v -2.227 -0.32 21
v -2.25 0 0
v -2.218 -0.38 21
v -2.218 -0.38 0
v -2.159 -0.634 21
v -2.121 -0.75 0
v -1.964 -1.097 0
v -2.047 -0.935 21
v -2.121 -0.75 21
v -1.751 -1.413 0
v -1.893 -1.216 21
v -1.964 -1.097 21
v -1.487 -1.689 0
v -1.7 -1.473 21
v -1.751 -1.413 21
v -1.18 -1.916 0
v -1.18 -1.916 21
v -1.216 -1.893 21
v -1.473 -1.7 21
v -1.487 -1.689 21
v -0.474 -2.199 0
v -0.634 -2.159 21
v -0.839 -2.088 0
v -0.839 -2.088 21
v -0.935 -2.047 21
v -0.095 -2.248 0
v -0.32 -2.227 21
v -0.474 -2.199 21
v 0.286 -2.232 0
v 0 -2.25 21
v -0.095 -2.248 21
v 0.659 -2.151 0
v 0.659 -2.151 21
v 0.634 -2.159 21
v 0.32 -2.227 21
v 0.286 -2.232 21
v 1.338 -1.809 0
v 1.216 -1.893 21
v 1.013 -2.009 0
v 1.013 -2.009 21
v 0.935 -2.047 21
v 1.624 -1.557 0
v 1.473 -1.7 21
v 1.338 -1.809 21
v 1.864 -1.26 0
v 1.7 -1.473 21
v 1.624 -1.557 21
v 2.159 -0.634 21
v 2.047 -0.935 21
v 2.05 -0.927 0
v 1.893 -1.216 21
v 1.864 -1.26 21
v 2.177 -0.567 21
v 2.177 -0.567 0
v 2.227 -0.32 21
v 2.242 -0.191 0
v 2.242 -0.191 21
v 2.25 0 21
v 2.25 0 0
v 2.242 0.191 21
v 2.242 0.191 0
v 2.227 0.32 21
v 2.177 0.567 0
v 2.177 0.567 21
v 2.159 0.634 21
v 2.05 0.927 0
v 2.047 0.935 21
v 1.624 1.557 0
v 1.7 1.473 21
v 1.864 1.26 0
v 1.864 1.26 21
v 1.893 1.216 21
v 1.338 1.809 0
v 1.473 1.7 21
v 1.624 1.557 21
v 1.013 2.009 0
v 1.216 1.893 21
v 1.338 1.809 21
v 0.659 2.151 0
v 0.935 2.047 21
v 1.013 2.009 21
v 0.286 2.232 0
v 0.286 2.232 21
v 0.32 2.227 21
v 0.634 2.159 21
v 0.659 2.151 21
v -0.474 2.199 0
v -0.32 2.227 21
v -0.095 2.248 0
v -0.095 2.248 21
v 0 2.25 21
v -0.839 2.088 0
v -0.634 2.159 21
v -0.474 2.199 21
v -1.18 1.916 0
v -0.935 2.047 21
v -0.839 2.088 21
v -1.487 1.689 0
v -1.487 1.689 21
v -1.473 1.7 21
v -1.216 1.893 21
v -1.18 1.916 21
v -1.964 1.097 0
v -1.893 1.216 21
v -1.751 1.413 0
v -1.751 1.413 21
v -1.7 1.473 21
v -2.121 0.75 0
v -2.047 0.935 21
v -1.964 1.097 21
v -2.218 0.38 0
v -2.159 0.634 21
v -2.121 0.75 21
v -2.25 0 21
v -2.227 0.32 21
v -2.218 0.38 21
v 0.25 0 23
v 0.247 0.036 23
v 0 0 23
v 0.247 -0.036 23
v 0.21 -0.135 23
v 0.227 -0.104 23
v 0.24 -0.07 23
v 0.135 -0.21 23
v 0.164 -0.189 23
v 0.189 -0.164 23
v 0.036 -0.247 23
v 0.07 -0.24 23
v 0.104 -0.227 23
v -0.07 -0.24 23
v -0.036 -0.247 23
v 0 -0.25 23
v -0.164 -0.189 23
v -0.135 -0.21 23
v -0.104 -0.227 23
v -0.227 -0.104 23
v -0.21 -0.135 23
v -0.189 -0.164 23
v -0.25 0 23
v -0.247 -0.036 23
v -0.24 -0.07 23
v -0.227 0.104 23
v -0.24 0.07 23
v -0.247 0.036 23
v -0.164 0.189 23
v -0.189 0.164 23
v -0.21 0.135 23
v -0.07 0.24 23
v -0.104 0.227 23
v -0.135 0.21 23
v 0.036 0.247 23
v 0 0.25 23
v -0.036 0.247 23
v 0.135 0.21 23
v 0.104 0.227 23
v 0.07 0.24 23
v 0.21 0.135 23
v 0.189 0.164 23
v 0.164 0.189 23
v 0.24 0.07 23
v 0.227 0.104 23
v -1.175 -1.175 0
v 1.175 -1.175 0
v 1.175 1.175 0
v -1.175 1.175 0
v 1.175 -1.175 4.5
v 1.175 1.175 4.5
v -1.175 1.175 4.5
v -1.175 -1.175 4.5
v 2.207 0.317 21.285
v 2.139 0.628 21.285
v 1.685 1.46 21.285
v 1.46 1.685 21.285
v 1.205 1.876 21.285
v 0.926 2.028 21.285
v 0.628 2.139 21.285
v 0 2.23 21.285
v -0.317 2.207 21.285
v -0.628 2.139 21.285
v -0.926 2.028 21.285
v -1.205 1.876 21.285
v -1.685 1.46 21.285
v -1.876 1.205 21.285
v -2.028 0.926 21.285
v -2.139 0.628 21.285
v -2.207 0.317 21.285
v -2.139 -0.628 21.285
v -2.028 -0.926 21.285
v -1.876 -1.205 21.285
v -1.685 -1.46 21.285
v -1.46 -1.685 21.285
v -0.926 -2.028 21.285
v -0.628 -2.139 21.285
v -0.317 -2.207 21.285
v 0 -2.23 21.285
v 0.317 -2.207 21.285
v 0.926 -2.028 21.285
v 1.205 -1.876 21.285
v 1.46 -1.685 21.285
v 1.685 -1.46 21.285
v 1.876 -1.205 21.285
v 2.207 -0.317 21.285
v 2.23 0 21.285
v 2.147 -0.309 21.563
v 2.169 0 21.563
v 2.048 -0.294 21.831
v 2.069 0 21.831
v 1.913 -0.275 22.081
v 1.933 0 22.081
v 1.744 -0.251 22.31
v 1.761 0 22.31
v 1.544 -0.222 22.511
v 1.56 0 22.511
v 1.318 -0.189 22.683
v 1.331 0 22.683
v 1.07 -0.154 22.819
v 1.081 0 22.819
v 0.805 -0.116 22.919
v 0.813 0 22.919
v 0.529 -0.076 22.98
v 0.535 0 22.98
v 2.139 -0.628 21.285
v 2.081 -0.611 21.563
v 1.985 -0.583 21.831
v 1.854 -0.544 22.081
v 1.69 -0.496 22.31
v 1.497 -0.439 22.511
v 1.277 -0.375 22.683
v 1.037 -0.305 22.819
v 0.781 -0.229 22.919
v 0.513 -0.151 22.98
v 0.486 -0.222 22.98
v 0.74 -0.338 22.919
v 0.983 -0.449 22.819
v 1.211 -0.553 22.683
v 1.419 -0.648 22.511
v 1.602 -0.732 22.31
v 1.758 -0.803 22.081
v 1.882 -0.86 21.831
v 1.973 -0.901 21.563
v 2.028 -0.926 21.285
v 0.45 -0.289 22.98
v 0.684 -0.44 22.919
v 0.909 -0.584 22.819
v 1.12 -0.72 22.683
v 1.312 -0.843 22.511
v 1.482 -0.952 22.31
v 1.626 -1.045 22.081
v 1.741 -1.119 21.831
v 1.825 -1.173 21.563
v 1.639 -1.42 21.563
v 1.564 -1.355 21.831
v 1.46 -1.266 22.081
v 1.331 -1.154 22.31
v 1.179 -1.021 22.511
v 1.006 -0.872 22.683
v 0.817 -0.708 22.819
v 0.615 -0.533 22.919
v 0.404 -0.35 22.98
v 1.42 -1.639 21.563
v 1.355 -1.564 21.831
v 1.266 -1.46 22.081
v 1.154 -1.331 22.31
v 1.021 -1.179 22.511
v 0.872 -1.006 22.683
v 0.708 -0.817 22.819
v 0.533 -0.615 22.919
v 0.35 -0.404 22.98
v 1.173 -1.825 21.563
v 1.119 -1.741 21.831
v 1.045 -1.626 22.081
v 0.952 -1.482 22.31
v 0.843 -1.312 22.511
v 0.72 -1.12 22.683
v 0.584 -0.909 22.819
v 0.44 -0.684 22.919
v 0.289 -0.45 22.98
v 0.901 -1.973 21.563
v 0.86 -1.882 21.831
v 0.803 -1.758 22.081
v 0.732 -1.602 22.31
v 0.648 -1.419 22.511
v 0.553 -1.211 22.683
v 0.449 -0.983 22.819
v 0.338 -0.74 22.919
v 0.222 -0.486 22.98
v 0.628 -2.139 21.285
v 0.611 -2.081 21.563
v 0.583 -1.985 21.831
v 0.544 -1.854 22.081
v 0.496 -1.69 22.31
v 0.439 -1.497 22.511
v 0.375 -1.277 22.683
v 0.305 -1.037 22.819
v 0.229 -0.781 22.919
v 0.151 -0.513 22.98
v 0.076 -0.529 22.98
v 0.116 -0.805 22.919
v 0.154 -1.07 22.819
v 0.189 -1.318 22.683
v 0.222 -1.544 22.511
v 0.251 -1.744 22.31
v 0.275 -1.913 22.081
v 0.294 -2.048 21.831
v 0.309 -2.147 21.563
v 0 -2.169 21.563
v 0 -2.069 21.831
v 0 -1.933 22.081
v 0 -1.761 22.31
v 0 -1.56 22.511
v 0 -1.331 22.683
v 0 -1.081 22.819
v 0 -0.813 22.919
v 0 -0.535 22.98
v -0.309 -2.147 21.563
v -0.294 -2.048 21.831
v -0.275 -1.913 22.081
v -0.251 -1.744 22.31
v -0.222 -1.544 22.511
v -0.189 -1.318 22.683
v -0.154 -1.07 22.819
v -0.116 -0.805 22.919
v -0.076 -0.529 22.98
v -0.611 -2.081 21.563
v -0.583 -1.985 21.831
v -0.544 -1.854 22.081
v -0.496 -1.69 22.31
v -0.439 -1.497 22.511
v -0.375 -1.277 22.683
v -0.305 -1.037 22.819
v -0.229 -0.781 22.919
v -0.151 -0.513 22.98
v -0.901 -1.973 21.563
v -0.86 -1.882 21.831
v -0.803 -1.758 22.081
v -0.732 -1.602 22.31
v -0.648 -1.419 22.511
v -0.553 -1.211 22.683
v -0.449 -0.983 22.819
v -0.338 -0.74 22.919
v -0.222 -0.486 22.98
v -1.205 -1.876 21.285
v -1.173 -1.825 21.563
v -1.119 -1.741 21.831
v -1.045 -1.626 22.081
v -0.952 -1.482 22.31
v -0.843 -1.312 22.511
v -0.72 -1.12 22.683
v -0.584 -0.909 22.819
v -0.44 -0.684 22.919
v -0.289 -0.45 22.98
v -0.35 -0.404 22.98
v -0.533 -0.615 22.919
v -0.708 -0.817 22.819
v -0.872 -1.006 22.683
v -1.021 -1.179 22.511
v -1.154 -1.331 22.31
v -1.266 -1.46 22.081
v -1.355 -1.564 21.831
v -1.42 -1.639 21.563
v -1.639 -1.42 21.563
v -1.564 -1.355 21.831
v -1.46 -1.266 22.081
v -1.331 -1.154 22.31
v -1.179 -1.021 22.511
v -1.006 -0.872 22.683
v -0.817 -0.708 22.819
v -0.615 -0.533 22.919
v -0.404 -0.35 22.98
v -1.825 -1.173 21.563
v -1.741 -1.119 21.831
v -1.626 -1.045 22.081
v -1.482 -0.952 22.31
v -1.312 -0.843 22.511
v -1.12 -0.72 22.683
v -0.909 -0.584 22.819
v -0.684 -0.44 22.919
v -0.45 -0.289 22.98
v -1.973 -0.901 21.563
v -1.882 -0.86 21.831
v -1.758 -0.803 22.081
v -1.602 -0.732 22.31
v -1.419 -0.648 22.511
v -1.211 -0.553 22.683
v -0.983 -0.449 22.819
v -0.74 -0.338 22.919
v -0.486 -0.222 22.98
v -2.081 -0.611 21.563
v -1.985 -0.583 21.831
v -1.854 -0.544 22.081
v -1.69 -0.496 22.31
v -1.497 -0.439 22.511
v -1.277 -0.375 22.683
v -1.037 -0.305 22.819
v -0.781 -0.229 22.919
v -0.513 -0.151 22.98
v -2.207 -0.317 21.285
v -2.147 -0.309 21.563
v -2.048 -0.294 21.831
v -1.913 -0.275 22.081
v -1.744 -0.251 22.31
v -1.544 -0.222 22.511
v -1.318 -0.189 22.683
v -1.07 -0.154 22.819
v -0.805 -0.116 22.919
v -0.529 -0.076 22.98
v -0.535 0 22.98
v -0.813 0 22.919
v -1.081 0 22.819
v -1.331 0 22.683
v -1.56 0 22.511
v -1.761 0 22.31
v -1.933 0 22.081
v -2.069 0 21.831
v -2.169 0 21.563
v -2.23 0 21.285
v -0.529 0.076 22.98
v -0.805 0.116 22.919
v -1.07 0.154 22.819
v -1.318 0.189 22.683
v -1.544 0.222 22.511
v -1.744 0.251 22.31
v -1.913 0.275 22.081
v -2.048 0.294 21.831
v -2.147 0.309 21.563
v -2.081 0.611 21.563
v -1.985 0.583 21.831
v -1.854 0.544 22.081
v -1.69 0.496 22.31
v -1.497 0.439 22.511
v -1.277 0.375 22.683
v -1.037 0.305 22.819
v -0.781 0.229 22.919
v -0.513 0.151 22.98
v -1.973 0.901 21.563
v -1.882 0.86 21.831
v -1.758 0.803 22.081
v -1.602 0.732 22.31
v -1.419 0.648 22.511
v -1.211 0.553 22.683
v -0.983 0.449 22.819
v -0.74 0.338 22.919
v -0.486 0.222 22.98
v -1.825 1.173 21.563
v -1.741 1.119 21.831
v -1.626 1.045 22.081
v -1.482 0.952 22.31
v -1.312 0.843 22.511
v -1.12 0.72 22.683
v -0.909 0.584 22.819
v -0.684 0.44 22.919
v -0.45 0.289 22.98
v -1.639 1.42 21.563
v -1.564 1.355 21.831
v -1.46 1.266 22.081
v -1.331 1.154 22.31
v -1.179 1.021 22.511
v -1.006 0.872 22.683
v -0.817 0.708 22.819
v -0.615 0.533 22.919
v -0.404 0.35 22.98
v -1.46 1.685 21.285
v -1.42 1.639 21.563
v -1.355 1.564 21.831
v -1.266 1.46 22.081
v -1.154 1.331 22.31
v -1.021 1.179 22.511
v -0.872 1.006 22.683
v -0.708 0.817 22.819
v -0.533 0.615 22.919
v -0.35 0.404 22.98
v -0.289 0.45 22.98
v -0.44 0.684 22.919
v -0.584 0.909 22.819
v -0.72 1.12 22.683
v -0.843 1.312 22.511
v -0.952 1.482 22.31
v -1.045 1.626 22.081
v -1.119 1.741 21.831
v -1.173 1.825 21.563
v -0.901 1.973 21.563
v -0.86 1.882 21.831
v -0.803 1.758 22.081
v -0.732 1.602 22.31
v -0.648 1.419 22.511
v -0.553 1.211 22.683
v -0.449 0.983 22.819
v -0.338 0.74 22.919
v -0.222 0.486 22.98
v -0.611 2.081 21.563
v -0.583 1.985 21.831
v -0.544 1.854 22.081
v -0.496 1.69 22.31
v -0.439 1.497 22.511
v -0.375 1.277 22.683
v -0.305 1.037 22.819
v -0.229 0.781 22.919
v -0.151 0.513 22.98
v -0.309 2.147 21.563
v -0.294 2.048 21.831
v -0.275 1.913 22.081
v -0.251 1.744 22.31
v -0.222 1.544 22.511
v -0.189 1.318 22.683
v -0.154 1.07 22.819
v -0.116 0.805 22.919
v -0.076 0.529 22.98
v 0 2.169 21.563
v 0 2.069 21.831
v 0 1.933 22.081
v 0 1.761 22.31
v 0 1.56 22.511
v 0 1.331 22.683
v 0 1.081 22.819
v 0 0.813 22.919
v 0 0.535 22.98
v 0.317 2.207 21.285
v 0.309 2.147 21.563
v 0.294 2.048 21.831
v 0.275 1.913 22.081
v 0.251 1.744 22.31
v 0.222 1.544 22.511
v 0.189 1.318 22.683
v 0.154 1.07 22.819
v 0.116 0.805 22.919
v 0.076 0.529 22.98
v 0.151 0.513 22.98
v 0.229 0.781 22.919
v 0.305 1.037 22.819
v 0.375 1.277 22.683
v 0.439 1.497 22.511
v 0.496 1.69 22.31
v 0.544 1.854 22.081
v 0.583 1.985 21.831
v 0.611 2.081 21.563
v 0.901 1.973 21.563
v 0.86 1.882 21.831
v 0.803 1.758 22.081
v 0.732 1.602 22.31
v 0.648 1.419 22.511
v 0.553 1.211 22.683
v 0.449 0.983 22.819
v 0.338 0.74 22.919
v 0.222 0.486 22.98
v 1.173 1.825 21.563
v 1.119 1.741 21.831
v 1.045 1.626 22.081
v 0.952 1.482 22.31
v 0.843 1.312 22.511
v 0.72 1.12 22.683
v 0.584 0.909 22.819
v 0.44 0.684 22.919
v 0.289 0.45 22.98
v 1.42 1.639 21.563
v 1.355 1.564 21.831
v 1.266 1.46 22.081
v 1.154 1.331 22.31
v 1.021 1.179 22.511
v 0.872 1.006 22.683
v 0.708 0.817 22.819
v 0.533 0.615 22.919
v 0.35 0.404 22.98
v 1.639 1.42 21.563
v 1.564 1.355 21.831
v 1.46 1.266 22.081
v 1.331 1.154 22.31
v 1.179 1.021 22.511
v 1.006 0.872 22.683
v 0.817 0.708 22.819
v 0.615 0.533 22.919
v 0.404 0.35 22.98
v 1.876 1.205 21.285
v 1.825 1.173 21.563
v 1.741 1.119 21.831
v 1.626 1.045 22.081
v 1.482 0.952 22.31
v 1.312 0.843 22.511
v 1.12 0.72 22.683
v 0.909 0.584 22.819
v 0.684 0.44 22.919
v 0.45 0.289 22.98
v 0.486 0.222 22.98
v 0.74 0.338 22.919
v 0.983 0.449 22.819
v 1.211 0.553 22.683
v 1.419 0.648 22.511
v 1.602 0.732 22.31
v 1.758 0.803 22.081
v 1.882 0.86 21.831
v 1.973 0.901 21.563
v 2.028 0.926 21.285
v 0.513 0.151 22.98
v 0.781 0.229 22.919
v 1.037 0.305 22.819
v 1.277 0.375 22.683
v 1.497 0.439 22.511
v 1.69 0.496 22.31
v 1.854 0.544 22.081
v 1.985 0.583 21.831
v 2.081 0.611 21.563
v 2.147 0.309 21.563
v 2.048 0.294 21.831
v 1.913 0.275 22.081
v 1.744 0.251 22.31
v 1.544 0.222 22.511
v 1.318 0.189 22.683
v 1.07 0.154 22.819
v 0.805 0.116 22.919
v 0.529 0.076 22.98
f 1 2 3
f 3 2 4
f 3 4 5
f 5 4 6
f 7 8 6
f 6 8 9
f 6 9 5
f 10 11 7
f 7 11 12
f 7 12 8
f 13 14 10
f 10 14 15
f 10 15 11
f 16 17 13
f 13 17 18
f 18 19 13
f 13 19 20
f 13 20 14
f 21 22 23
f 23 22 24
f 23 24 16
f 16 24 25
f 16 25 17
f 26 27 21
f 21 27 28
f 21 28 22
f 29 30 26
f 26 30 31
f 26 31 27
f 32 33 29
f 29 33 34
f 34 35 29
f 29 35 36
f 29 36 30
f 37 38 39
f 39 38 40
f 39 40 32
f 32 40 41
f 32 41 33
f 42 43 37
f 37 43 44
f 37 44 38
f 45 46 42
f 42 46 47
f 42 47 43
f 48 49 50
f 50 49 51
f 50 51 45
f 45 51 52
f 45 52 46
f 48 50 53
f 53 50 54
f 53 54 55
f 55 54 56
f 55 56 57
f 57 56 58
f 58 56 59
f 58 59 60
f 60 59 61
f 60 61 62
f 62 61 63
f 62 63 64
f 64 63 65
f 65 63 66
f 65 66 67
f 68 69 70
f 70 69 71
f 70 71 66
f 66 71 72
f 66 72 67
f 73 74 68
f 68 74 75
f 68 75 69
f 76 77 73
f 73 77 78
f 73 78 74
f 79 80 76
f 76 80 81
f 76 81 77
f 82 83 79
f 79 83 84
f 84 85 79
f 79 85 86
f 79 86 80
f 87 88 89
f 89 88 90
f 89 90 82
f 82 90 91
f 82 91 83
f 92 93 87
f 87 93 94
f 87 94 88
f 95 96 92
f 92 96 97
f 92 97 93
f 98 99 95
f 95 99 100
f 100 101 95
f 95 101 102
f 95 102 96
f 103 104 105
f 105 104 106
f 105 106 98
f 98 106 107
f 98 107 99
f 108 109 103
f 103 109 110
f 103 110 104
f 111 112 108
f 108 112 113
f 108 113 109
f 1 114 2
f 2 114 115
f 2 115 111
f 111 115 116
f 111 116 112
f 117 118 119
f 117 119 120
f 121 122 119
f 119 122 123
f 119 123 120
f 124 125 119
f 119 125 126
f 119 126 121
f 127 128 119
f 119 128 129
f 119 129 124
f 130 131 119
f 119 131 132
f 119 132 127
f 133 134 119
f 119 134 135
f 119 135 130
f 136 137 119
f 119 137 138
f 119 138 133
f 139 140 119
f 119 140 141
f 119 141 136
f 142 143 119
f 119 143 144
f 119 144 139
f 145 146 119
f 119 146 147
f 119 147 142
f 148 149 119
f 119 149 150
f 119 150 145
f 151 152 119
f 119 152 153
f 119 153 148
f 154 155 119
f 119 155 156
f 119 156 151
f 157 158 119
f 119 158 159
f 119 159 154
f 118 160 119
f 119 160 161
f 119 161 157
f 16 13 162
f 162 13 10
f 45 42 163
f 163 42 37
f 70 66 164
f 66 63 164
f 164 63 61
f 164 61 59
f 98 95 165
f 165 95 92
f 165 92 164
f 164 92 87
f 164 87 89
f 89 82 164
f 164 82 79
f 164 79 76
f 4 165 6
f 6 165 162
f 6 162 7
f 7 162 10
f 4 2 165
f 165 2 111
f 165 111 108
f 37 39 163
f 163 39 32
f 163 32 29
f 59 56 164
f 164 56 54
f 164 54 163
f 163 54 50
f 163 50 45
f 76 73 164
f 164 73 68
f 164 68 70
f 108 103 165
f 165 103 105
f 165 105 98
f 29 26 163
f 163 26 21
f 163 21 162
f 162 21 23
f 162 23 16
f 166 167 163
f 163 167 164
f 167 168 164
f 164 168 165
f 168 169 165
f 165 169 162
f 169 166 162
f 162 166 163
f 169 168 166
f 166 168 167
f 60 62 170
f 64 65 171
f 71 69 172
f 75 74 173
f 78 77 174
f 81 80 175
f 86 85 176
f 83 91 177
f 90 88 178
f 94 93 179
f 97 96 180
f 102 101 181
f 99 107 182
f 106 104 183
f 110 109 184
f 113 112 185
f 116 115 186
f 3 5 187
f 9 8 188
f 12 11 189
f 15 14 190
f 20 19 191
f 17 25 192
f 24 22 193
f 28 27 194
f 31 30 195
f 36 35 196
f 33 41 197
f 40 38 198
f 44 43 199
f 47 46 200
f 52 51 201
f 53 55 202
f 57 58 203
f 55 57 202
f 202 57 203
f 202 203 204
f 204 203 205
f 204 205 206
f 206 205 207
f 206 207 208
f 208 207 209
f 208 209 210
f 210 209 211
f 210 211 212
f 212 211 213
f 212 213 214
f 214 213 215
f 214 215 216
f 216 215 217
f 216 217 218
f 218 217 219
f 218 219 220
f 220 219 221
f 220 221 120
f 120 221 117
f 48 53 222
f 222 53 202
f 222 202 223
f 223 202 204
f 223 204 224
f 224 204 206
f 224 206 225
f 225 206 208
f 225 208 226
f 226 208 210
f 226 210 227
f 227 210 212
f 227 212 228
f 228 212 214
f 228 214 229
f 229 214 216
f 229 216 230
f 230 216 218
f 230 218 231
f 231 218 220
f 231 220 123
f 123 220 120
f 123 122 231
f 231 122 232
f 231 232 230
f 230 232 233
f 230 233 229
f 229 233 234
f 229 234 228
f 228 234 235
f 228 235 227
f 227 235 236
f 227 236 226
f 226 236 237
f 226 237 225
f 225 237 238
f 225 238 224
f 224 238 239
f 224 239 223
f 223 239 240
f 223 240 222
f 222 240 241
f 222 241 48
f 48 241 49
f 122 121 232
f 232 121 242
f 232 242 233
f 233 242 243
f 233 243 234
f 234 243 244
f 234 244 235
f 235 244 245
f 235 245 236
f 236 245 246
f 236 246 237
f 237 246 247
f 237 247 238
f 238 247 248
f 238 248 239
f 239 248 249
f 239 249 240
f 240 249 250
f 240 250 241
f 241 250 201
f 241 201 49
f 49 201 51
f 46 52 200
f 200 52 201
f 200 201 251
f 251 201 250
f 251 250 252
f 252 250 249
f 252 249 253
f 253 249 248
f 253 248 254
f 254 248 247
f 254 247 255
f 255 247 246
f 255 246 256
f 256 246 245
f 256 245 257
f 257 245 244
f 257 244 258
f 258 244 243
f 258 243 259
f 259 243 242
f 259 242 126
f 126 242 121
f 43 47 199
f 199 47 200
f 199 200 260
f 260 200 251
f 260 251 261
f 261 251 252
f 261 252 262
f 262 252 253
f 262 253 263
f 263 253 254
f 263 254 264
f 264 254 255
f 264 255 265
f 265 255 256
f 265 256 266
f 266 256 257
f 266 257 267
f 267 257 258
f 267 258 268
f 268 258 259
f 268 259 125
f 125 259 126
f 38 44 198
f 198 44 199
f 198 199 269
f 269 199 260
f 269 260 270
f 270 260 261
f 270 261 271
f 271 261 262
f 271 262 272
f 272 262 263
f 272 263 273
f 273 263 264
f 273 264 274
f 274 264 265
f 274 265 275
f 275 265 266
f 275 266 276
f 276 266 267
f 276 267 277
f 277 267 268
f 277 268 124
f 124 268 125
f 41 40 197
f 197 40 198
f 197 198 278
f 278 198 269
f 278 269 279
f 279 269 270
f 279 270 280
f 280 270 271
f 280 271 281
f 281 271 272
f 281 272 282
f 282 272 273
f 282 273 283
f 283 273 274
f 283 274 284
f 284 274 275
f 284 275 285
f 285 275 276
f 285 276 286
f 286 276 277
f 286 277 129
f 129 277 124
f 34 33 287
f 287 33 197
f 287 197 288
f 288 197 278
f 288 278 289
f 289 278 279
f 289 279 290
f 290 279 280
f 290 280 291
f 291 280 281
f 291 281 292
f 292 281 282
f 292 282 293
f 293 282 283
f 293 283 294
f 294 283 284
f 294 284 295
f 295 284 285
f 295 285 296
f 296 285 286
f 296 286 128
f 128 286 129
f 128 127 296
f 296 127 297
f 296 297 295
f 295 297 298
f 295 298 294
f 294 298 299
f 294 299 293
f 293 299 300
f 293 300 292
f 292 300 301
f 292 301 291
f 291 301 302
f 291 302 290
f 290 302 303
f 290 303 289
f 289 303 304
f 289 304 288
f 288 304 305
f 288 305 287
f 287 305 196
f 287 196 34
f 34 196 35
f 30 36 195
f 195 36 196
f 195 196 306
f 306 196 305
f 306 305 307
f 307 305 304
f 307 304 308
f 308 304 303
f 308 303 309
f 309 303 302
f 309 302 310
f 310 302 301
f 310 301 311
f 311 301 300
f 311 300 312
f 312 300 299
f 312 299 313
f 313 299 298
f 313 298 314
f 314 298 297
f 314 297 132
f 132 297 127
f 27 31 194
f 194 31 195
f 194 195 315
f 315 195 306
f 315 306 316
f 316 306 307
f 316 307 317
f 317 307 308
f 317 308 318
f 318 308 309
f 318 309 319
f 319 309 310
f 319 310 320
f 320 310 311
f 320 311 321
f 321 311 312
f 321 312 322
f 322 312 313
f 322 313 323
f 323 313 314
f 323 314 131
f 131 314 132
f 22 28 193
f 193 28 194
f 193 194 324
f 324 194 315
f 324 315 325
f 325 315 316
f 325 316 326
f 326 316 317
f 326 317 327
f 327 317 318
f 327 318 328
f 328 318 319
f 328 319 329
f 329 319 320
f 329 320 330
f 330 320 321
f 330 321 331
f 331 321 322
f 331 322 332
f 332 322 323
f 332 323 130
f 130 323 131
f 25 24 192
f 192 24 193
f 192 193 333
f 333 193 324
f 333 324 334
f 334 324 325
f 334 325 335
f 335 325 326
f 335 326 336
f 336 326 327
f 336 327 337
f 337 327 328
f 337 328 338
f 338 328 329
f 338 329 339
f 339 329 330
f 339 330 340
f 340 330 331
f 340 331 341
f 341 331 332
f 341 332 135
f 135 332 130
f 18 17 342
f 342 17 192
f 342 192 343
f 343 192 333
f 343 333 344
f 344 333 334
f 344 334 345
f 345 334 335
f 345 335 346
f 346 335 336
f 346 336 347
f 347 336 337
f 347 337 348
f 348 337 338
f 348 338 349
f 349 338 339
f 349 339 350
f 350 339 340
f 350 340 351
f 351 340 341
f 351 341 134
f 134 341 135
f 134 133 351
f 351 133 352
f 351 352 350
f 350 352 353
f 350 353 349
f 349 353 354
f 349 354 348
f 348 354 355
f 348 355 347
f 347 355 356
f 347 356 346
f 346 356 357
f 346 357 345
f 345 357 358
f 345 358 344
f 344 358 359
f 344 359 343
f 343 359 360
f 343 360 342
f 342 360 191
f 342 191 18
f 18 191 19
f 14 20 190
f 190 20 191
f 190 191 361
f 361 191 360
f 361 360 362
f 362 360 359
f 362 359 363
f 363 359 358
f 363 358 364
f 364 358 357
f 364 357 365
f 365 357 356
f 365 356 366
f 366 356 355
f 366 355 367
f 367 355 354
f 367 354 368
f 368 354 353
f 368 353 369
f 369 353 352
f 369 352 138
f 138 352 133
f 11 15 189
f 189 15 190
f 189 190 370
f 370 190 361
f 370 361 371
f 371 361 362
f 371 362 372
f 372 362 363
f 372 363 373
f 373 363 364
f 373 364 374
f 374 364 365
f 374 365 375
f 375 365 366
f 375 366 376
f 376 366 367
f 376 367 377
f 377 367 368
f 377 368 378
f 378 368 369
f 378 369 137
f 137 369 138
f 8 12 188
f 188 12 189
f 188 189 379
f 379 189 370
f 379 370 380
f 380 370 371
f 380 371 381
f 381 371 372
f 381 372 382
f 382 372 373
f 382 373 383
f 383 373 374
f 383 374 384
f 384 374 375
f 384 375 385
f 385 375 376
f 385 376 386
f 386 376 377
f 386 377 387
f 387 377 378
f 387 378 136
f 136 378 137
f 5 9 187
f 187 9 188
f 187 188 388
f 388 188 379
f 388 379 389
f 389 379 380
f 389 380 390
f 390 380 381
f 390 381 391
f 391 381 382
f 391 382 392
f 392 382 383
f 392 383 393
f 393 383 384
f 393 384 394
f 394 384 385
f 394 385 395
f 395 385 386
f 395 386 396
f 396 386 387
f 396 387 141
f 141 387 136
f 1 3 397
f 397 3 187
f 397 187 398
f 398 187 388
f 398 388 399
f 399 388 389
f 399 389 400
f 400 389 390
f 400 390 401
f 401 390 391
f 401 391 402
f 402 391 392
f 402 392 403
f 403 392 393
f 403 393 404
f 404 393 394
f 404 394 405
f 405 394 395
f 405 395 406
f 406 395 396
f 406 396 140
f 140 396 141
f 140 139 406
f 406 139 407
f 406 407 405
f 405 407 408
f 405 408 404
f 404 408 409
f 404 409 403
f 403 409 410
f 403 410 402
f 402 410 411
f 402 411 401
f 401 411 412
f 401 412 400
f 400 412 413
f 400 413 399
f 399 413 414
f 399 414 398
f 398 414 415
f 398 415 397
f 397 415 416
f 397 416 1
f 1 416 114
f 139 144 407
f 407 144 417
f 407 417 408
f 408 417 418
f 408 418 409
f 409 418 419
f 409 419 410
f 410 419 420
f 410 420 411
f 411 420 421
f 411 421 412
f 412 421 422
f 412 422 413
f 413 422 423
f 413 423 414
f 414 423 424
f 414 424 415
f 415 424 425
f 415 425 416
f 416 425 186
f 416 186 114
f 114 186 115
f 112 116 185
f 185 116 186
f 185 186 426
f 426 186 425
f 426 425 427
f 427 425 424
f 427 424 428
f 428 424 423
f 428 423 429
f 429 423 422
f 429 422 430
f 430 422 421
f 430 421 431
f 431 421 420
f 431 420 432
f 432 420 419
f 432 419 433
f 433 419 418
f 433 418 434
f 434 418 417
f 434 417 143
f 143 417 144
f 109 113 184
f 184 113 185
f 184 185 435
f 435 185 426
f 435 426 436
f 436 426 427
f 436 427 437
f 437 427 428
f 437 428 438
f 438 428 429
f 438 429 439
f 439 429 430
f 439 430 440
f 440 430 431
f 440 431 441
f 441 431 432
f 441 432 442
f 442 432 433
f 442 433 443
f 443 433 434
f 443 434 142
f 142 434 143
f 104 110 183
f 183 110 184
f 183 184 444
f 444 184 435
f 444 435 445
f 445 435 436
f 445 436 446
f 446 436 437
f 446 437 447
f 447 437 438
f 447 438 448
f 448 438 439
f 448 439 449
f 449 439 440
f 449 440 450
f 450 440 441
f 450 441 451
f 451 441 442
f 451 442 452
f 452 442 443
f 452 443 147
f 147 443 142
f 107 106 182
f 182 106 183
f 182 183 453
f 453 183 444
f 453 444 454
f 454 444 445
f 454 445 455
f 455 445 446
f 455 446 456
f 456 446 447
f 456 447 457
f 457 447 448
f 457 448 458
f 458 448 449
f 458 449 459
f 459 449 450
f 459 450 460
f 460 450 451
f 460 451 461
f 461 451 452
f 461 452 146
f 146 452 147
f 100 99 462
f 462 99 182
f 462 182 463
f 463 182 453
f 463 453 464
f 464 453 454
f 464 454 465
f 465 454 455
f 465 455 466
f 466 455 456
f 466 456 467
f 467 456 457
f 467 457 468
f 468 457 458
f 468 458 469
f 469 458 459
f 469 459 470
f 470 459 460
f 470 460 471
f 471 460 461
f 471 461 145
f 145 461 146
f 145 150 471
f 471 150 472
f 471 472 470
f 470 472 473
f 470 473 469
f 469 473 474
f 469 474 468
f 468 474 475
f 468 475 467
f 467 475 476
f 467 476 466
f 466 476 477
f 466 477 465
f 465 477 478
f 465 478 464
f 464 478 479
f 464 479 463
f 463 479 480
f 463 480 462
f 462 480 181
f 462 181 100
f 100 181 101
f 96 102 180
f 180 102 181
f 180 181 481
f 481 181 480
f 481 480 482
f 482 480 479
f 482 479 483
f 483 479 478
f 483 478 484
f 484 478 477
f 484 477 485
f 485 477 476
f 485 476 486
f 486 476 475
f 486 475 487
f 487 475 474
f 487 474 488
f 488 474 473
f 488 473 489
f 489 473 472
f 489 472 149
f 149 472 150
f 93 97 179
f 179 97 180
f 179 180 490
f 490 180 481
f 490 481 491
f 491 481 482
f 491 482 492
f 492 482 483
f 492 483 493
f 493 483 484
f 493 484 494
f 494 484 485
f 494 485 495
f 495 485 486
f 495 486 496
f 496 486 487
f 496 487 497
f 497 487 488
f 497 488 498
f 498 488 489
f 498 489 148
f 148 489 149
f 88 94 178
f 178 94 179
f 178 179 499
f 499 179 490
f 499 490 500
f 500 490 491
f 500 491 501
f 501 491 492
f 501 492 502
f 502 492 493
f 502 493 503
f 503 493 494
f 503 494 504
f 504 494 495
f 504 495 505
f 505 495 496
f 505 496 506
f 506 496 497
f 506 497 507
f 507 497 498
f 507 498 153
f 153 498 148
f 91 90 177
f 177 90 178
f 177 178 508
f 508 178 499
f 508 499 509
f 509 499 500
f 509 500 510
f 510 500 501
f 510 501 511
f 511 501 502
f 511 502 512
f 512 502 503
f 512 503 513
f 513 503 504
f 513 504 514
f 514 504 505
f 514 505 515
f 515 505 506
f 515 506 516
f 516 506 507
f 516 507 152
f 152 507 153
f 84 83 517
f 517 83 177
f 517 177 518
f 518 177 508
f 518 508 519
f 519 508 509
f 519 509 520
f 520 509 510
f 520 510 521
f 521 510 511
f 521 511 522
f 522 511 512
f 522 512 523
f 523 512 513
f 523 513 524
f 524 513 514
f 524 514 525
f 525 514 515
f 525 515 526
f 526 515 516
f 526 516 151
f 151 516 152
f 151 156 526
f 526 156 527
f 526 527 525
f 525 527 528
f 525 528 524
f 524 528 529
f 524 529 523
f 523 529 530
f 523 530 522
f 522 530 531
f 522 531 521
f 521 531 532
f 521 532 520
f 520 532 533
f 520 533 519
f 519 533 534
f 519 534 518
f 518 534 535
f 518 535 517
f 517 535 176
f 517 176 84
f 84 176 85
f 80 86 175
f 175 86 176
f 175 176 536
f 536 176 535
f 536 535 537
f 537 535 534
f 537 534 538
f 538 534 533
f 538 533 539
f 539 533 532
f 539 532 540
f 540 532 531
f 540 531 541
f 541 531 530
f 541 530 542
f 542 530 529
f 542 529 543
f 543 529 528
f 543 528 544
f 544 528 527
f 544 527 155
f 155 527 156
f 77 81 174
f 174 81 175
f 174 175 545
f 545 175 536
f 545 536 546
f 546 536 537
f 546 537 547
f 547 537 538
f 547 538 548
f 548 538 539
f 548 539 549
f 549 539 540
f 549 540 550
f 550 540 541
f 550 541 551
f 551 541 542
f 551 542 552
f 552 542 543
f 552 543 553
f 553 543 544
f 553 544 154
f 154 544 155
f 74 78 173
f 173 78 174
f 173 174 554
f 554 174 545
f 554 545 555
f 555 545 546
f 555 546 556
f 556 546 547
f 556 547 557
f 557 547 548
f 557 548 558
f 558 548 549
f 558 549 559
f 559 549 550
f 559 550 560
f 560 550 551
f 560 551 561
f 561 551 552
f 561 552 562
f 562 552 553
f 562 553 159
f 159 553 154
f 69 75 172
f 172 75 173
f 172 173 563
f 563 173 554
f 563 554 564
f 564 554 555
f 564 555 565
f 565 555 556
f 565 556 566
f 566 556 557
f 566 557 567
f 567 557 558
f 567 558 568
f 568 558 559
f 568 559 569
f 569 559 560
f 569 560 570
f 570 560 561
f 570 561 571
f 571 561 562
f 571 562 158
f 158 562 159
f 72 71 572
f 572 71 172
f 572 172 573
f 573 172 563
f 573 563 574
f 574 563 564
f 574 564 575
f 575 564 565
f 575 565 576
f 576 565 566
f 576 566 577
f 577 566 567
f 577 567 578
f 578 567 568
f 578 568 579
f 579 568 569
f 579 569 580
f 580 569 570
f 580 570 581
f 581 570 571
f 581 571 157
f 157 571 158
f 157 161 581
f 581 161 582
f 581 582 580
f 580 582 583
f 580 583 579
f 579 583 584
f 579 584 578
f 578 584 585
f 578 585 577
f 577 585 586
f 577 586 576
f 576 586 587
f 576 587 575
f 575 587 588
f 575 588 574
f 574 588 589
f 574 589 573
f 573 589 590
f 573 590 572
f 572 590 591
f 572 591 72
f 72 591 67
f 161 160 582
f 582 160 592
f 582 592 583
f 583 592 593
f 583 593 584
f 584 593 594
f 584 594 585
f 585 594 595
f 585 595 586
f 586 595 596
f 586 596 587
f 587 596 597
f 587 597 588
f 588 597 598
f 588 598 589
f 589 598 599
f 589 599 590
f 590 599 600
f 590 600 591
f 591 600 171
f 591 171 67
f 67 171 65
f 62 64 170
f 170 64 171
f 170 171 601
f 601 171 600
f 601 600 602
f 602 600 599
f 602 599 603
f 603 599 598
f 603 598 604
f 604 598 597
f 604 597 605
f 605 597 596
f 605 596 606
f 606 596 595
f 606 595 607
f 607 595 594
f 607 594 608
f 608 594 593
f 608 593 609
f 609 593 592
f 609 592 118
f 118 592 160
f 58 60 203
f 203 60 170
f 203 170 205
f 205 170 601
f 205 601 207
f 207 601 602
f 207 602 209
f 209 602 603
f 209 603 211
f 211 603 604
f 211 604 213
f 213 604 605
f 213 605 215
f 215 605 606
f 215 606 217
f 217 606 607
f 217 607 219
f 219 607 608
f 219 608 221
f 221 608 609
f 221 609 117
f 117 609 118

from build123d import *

# Parameters (mm, degrees)
SKETCH_1_R          = 2.25
EXTRUDE_2_DEPTH     = 23
SKETCH_7_W          = 2.35
SKETCH_7_H          = 2.35
CUT_EXTRUDE_3_DEPTH = 4.5
FILLET_2_R          = 2


with BuildPart() as part:
    # 草图1 → 凸台-拉伸2 (new body)
    with BuildSketch(Plane.XY):
        Circle(SKETCH_1_R)
    extrude(amount=EXTRUDE_2_DEPTH)

    # 草图7 → 切除-拉伸3 (cut)
    with BuildSketch(Plane.XY):
        Rectangle(SKETCH_7_W, SKETCH_7_H)
    extrude(amount=CUT_EXTRUDE_3_DEPTH, mode=Mode.SUBTRACT)

    # 圆角2
    fillet_2_edges = [part.edges().sort_by_distance(p)[0] for p in [
        (-2.25, 0, 23),
    ]]
    fillet(fillet_2_edges, radius=FILLET_2_R)


solid = part.part
